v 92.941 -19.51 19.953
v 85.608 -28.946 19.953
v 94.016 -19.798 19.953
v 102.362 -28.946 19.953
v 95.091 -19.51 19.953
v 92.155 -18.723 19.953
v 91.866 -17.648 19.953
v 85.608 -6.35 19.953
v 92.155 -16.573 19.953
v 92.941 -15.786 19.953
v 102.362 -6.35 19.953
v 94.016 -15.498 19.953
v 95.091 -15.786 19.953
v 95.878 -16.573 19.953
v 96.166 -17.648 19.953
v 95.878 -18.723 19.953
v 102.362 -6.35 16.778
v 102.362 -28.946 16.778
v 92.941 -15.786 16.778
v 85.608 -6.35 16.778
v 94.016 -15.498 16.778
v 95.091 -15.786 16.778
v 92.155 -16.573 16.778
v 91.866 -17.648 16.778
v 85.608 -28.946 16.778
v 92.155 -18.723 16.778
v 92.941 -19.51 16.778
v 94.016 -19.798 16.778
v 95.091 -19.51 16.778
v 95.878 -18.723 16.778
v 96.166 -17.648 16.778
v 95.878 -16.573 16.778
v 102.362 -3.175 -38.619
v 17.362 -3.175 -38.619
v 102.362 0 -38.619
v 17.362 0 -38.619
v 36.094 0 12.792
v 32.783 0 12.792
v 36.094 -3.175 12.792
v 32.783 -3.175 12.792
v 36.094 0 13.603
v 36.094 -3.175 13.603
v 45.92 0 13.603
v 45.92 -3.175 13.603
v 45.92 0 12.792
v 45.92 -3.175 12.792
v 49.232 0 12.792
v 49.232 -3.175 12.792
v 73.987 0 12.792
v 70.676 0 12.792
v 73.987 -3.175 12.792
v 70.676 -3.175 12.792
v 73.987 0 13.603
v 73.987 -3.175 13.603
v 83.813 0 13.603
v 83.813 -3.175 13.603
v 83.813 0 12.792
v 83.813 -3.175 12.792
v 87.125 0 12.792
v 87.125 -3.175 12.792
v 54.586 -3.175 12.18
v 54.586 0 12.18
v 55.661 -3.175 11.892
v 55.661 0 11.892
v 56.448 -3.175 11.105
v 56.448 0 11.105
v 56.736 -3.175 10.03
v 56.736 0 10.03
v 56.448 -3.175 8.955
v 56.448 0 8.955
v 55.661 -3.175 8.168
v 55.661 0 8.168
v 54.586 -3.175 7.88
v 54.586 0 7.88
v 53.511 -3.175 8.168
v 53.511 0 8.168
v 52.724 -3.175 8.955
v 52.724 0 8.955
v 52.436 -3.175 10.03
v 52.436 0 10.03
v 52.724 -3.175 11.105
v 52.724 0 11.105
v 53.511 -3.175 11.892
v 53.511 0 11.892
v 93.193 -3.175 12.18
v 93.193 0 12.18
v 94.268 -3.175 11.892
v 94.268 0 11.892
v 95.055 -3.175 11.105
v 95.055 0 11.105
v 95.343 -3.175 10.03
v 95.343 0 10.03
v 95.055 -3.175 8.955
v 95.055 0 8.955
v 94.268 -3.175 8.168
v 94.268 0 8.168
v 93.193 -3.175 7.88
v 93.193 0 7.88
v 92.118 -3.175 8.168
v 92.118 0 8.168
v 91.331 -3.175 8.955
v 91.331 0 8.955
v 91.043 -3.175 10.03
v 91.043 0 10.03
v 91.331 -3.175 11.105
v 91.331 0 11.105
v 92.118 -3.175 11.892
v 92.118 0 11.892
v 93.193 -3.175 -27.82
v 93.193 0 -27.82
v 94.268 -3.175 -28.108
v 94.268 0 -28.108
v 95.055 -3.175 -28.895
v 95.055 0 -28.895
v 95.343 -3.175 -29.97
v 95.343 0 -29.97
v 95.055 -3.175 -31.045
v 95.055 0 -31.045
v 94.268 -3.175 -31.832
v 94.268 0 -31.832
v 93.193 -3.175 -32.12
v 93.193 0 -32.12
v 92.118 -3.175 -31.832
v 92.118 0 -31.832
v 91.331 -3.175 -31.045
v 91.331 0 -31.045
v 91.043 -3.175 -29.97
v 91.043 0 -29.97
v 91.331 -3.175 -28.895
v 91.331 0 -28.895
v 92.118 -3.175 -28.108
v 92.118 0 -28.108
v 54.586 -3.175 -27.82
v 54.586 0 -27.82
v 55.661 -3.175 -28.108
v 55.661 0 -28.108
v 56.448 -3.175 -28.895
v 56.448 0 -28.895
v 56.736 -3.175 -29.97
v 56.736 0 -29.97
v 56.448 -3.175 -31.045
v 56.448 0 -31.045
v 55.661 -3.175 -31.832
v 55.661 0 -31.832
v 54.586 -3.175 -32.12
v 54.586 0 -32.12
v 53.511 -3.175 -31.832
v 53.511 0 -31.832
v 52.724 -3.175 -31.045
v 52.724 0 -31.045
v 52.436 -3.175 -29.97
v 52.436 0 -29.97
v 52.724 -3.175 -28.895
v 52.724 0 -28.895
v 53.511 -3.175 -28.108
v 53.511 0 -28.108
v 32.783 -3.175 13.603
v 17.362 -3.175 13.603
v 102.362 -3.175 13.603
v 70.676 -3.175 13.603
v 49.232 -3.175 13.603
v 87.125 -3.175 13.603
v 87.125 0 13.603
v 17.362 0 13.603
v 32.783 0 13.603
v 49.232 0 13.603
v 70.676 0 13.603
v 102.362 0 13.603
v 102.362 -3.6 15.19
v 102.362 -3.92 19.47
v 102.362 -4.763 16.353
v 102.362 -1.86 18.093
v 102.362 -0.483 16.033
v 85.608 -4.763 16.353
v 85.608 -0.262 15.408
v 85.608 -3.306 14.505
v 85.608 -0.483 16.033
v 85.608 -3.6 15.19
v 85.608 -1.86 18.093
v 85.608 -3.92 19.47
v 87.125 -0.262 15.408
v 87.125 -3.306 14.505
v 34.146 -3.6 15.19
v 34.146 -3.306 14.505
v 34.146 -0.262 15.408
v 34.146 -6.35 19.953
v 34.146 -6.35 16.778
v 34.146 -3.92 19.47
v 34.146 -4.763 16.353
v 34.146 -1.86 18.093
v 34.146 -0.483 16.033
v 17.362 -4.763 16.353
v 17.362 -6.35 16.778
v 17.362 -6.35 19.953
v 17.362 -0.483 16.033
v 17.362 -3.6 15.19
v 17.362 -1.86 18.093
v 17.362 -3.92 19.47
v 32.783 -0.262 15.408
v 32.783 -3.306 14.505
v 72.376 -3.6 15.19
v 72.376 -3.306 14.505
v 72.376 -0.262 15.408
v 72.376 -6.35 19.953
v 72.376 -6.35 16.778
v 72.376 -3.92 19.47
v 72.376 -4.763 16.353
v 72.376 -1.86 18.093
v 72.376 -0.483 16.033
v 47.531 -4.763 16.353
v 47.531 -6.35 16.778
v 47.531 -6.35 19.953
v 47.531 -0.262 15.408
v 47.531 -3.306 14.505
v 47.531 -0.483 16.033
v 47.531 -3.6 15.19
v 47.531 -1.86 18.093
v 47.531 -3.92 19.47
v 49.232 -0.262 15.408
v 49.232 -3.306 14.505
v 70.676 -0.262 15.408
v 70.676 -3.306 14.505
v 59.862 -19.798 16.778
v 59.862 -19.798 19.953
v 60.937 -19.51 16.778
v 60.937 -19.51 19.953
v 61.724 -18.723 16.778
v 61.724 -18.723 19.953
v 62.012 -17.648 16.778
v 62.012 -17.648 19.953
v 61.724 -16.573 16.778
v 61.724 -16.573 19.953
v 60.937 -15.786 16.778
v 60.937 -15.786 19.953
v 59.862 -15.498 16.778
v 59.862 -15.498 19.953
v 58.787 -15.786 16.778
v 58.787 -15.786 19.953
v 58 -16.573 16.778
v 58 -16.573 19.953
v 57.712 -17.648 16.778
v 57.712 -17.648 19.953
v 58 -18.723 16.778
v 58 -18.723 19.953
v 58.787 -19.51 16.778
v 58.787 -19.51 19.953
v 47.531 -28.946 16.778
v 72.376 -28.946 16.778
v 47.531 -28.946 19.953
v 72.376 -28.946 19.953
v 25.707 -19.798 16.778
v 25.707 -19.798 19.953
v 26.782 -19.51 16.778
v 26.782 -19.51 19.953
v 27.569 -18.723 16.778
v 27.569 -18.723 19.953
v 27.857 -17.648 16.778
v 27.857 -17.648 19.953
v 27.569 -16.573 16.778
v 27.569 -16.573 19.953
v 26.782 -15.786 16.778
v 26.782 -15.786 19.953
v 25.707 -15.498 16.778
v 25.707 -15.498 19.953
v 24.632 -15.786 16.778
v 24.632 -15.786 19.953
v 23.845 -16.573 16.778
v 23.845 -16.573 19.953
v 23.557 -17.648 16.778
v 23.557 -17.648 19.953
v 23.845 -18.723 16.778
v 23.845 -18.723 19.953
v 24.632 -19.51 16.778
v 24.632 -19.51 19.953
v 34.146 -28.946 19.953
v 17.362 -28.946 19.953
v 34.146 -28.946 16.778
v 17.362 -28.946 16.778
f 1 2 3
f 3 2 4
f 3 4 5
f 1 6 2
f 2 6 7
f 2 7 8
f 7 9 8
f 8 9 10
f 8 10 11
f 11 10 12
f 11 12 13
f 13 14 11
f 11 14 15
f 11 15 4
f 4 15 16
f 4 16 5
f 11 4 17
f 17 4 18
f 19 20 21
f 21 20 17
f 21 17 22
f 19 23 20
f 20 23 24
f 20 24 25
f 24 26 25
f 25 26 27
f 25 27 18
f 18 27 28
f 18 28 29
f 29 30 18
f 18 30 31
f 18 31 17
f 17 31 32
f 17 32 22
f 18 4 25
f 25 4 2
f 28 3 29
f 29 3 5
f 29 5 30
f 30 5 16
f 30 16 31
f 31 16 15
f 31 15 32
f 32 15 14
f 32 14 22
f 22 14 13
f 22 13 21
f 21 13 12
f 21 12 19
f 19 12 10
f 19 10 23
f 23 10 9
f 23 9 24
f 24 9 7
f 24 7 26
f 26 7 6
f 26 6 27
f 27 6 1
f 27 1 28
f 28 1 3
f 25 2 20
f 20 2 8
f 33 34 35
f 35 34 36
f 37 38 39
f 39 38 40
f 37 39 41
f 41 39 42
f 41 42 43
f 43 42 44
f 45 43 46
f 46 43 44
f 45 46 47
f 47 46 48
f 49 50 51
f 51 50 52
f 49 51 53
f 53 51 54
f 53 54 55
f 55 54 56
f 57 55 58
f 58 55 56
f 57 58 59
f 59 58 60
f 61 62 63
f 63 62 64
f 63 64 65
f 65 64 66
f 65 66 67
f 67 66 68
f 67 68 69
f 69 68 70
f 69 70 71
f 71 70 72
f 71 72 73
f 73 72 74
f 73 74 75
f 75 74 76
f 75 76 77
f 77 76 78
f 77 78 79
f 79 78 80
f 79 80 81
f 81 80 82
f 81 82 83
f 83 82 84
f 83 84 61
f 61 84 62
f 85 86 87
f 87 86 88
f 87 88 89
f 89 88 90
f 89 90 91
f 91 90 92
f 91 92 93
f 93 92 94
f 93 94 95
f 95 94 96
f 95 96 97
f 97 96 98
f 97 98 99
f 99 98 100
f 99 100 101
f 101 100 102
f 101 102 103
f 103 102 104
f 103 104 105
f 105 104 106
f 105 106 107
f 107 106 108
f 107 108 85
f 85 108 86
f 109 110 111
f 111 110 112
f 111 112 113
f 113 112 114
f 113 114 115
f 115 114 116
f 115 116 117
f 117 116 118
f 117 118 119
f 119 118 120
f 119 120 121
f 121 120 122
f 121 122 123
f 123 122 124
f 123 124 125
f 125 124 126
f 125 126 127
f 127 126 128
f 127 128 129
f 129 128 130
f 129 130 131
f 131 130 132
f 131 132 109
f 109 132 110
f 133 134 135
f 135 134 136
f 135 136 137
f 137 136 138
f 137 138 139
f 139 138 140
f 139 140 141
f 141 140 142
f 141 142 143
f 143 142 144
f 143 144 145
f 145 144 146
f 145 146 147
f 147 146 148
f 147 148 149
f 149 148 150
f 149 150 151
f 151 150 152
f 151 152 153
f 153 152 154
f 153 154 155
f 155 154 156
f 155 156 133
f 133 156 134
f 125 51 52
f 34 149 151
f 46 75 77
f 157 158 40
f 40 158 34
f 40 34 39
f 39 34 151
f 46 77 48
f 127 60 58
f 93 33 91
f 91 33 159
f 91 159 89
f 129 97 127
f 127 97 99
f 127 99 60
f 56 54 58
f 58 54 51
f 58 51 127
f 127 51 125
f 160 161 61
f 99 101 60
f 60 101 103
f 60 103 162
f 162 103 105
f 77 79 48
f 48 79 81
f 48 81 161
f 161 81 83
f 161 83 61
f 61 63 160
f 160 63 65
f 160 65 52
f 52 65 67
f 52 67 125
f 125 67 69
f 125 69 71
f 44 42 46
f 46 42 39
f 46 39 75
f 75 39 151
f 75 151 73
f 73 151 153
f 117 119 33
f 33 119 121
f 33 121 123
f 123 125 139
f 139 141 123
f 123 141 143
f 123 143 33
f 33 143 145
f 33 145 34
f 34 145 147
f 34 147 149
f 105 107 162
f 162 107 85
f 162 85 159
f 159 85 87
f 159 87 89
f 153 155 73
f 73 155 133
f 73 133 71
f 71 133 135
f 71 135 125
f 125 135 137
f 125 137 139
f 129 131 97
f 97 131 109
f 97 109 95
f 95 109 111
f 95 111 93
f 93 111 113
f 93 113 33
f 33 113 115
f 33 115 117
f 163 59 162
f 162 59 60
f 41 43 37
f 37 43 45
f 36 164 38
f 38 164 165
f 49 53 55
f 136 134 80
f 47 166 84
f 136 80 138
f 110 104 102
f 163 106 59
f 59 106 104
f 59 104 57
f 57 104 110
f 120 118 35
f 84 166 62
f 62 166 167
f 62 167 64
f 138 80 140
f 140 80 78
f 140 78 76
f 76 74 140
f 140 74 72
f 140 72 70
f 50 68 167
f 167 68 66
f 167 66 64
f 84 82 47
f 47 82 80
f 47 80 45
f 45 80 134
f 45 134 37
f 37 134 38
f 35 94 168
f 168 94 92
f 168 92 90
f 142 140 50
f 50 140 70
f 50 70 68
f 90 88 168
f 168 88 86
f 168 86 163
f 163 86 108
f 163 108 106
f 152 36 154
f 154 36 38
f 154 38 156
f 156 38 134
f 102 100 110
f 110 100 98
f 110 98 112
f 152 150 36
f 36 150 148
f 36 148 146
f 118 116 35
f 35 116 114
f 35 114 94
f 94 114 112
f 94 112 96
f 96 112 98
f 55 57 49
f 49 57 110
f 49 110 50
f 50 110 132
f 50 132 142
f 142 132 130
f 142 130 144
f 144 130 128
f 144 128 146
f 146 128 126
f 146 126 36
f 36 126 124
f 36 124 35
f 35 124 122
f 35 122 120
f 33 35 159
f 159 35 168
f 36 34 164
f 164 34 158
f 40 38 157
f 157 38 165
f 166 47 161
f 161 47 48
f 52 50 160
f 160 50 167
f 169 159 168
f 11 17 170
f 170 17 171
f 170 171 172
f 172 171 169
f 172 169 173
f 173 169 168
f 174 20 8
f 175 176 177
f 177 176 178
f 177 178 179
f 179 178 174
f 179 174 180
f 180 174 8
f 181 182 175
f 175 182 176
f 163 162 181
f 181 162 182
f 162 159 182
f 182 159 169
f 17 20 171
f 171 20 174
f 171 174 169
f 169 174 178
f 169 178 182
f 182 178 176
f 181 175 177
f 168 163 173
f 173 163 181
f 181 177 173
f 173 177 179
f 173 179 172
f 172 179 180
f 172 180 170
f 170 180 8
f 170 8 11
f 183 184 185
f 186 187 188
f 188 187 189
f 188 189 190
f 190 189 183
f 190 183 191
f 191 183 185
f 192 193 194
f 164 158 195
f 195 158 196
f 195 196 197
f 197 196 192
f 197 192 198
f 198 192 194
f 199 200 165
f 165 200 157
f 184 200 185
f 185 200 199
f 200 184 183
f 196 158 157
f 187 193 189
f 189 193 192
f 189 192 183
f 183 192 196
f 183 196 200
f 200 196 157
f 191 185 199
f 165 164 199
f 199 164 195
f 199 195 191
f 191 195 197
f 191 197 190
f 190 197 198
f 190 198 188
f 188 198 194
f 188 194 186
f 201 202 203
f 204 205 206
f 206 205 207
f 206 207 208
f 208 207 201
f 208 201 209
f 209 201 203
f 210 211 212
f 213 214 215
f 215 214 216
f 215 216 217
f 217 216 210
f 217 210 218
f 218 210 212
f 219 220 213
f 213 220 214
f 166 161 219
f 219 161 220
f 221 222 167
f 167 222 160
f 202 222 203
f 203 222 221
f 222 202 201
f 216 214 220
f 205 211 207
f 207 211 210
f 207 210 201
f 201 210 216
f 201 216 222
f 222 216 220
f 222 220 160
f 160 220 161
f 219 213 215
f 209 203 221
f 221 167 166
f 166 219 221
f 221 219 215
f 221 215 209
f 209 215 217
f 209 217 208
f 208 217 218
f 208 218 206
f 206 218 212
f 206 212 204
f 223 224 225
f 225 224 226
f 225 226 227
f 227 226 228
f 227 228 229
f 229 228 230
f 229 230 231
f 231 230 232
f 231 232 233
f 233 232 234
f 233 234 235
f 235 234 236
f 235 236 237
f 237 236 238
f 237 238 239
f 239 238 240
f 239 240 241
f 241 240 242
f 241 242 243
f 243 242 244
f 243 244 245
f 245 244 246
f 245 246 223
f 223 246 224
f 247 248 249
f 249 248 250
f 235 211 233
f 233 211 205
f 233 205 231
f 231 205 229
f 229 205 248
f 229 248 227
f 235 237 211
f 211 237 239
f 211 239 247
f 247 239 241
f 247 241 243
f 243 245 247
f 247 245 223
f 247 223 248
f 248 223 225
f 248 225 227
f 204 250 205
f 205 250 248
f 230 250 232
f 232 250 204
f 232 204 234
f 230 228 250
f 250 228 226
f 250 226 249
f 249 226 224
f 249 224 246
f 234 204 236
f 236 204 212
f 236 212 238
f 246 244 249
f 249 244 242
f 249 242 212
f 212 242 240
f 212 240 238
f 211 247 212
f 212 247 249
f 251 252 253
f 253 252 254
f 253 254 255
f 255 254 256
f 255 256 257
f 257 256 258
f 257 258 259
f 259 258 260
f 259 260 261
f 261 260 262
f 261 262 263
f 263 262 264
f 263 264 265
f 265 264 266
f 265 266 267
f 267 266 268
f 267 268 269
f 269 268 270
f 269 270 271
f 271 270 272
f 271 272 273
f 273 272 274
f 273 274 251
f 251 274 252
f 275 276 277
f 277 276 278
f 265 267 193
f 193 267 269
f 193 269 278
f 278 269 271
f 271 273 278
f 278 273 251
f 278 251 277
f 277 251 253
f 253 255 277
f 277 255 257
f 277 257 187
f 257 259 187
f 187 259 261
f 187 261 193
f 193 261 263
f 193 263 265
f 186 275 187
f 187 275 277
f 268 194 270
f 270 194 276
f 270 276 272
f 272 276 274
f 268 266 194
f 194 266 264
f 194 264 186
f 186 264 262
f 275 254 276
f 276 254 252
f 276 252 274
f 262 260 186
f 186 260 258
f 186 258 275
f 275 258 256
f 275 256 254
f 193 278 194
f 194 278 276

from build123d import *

# Parameters (mm, degrees)
BASE_FLANGE1_DEPTH           = 3.175
SKETCH7_R                    = 2.15
CUT_EXTRUDE1_DEPTH           = 10
CUT_EXTRUDE2_DEPTH           = 10
SKETCHED_START               = 19.282254495
SKETCHED_BEND9_OUTLINE_W     = 16.753945323
SKETCHED_BEND9_OUTLINE_H     = 3.175
SKETCHED_BEND9_OUTLINE_W_2   = 24.844698194
SKETCHED_BEND9_OUTLINE_W_3   = 16.78397474
SKETCHED_BEND9_DEPTH         = 24.098637012
SKETCHED_START_2             = 19.005571507
SKETCHED_BEND9_2_OUTLINE_W   = 21.444377118
SKETCHED_BEND9_2_OUTLINE_H   = 3.175
SKETCHED_BEND9_2_DEPTH       = 0.294970988
SKETCHED_START_3             = 13.602941495
SKETCHED_BEND9_3_OUTLINE_R   = 2.15
SKETCHED_BEND9_3_DEPTH       = 6.35
SKETCHED_START_4             = 14.505297696
SKETCHED_BEND9_4_OUTLINE_W   = 1.51683744
SKETCHED_BEND9_4_OUTLINE_H   = 3.175
SKETCHED_BEND9_4_OUTLINE_W_2 = 1.700160538
SKETCHED_BEND9_4_OUTLINE_W_3 = 1.362827281
SKETCHED_BEND9_4_DEPTH       = 0.415197651
SKETCHED_START_5             = 17.361749674
SKETCHED_BEND9_5_DEPTH       = 85
SKETCHED_START_6             = 70.675958021
SKETCHED_BEND9_6_DEPTH       = 16.44868377
SKETCHED_START_7             = 32.782897133
SKETCHED_BEND9_7_DEPTH       = 16.44868377
SKETCHED_START_8             = 49.231580903
SKETCHED_BEND9_8_DEPTH       = 21.444377118


with BuildPart() as part:
    # Base-Flange1: sheet metal written as solids
    # Sketch2 → Base-Flange1 (new body)
    with BuildSketch(Plane(origin=(0, 0, 0), x_dir=(1, 0, 0), z_dir=(0, 1, 0))):
        Polygon((17.361749674, -43.380891507), (102.361749674, -43.380891507), (102.361749674, -20.784622302), (102.361749674, -13.602941495), (102.361749674, 38.619108493), (17.361749674, 38.619108493), align=None)
    extrude(amount=-BASE_FLANGE1_DEPTH)

    # Sketch7 → Cut-Extrude1 (cut)
    with BuildSketch(Plane(origin=(0, 0, 0), x_dir=(1, 0, 0), z_dir=(0, 1, 0))):
        with Locations(Location((54.586454374, -10.030408526, 0), (0, 0, 270))):
            Circle(SKETCH7_R)
        with Locations(Location((93.192772434, -10.030408526, 0), (0, 0, 270))):
            Circle(SKETCH7_R)
        with Locations(Location((93.192772434, 29.969592019, 0), (0, 0, 270))):
            Circle(SKETCH7_R)
        with Locations(Location((54.586454374, 29.969592019, 0), (0, 0, 270))):
            Circle(SKETCH7_R)
        with Locations(Location((94.016482215, -32.082756904, 0), (0, 0, 270))):
            Circle(SKETCH7_R)
        with Locations(Location((59.861749674, -32.082756904, 0), (0, 0, 270))):
            Circle(SKETCH7_R)
        with Locations(Location((25.707017133, -32.082756904, 0), (0, 0, 270))):
            Circle(SKETCH7_R)
    extrude(amount=-CUT_EXTRUDE1_DEPTH, mode=Mode.SUBTRACT)

    # Sketch8 → Cut-Extrude2 (cut)
    with BuildSketch(Plane(origin=(0, 0, 0), x_dir=(1, 0, 0), z_dir=(0, 1, 0))):
        Polygon((85.607804351, -43.380891507), (72.376118559, -43.380891507), (72.376118559, -14.920495347), (70.675958021, -14.920495347), (70.675958021, -12.791720969), (73.98738483, -12.791720969), (73.98738483, -13.602941495), (83.813214982, -13.602941495), (83.813214982, -12.791720969), (87.124641791, -12.791720969), (87.124641791, -14.920495347), (85.607804351, -14.920495347), align=None)
        Polygon((47.531420365, -43.380891507), (34.145724414, -43.380891507), (34.145724414, -14.920495347), (32.782897133, -14.920495347), (32.782897133, -12.791720969), (36.094323942, -12.791720969), (36.094323942, -13.602941495), (45.920154094, -13.602941495), (45.920154094, -12.791720969), (49.231580903, -12.791720969), (49.231580903, -14.920495347), (47.531420365, -14.920495347), align=None)
    extrude(amount=-CUT_EXTRUDE2_DEPTH, mode=Mode.SUBTRACT)

    # Sketched Bend9: read off the stored shape, not the designer's step
    # Sketched Bend9 outline → Sketched Bend9 (cut)
    with BuildSketch(Plane.XY.offset(SKETCHED_START)):
        with Locations((93.984777013, -1.5875)):
            Rectangle(SKETCHED_BEND9_OUTLINE_W, SKETCHED_BEND9_OUTLINE_H)
        with Locations((59.953769462, -1.5875)):
            Rectangle(SKETCHED_BEND9_OUTLINE_W_2, SKETCHED_BEND9_OUTLINE_H)
        with Locations((25.753737044, -1.5875)):
            Rectangle(SKETCHED_BEND9_OUTLINE_W_3, SKETCHED_BEND9_OUTLINE_H)
    extrude(amount=SKETCHED_BEND9_DEPTH, mode=Mode.SUBTRACT)

    # Sketched Bend9 2 outline → Sketched Bend9 2 (cut)
    with BuildSketch(Plane.XY.offset(SKETCHED_START_2)):
        with Locations((59.953769462, -1.5875)):
            Rectangle(SKETCHED_BEND9_2_OUTLINE_W, SKETCHED_BEND9_2_OUTLINE_H)
    extrude(amount=SKETCHED_BEND9_2_DEPTH, mode=Mode.SUBTRACT)

    # Sketched Bend9 3 outline → Sketched Bend9 3 (add)
    # profile 1 of 3: a face of its own
    with BuildSketch(Plane.XY.offset(SKETCHED_START_3)):
        Polygon((85.607804351, -28.946269205), (102.361749674, -28.946269205), (102.361749674, -3.175), (87.124641791, -3.175), (85.607804351, -3.175), align=None)
        with Locations((94.016482215, -17.648134603)):
            Circle(SKETCHED_BEND9_3_OUTLINE_R, mode=Mode.SUBTRACT)
    # profile 2 of 3: a face of its own
    with BuildSketch(Plane.XY.offset(SKETCHED_START_3)):
        Polygon((72.376118559, -28.946269205), (72.376118559, -3.175), (70.675958021, -3.175), (49.231580903, -3.175), (47.531420365, -3.175), (47.531420365, -28.946269205), align=None)
        with Locations((59.861749674, -17.648134603)):
            Circle(SKETCHED_BEND9_3_OUTLINE_R, mode=Mode.SUBTRACT)
    # profile 3 of 3: a face of its own
    with BuildSketch(Plane.XY.offset(SKETCHED_START_3)):
        Polygon((34.145724414, -28.946269205), (34.145724414, -3.175), (32.782897133, -3.175), (17.361749674, -3.175), (17.361749674, -28.946269205), align=None)
        with Locations((25.707017133, -17.648134603)):
            Circle(SKETCHED_BEND9_3_OUTLINE_R, mode=Mode.SUBTRACT)
    extrude(amount=SKETCHED_BEND9_3_DEPTH)

    # Sketched Bend9 4 outline → Sketched Bend9 4 (add)
    with BuildSketch(Plane.XY.offset(SKETCHED_START_4)):
        with Locations((86.366223071, -1.5875)):
            Rectangle(SKETCHED_BEND9_4_OUTLINE_W, SKETCHED_BEND9_4_OUTLINE_H)
        with Locations((71.52603829, -1.5875)):
            Rectangle(SKETCHED_BEND9_4_OUTLINE_W_2, SKETCHED_BEND9_4_OUTLINE_H)
        with Locations((48.381500634, -1.5875)):
            Rectangle(SKETCHED_BEND9_4_OUTLINE_W_2, SKETCHED_BEND9_4_OUTLINE_H)
        with Locations((33.464310774, -1.5875)):
            Rectangle(SKETCHED_BEND9_4_OUTLINE_W_3, SKETCHED_BEND9_4_OUTLINE_H)
    extrude(amount=SKETCHED_BEND9_4_DEPTH)

    # Sketched Bend9 5 outline → Sketched Bend9 5 (cut)
    with BuildSketch(Plane.YZ.offset(SKETCHED_START_5)):
        with BuildLine():
            ThreePointArc((-3.175, 13.602941495), (-4.10493597, 15.848005525), (-6.35, 16.777941495))
            Line((-6.35, 16.777941495), (-28.946269205, 16.777941495))
            Line((-28.946269205, 16.777941495), (-28.946269205, 13.602941495))
            Line((-28.946269205, 13.602941495), (-3.175, 13.602941495))
        make_face()
        with BuildLine():
            Line((0, 13.602941495), (0, 19.282254495))
            Line((0, 19.282254495), (-3.175, 19.282254495))
            Line((-3.175, 19.282254495), (-3.175, 19.952941495))
            Line((-3.175, 19.952941495), (-6.35, 19.952941495))
            ThreePointArc((-6.35, 19.952941495), (-1.859871939, 18.093069556), (0, 13.602941495))
        make_face()
    extrude(amount=SKETCHED_BEND9_5_DEPTH, mode=Mode.SUBTRACT)

    # Sketched Bend9 6 outline → Sketched Bend9 6 (cut)
    with BuildSketch(Plane.YZ.offset(SKETCHED_START_6)):
        with BuildLine():
            Line((-0.261854704, 15.407653897), (-3.305927352, 14.505297696))
            ThreePointArc((-3.305927352, 14.505297696), (-3.20790232, 14.058844085), (-3.175, 13.602941495))
            Line((-3.175, 13.602941495), (-3.175, 14.505297696))
            Line((-3.175, 14.505297696), (-0.064440893, 14.505297696))
            ThreePointArc((-0.064440893, 14.505297696), (-0.146718462, 14.96007014), (-0.261854704, 15.407653897))
        make_face()
    extrude(amount=SKETCHED_BEND9_6_DEPTH, mode=Mode.SUBTRACT)

    # Sketched Bend9 7 outline → Sketched Bend9 7 (cut)
    with BuildSketch(Plane.YZ.offset(SKETCHED_START_7)):
        with BuildLine():
            Line((-0.261854704, 15.407653897), (-3.305927352, 14.505297696))
            ThreePointArc((-3.305927352, 14.505297696), (-3.20790232, 14.058844085), (-3.175, 13.602941495))
            Line((-3.175, 13.602941495), (-3.175, 14.505297696))
            Line((-3.175, 14.505297696), (-0.064440893, 14.505297696))
            ThreePointArc((-0.064440893, 14.505297696), (-0.146718462, 14.96007014), (-0.261854704, 15.407653897))
        make_face()
    extrude(amount=SKETCHED_BEND9_7_DEPTH, mode=Mode.SUBTRACT)

    # Sketched Bend9 8 outline → Sketched Bend9 8 (add)
    with BuildSketch(Plane.YZ.offset(SKETCHED_START_8)):
        with BuildLine():
            Line((-3.175, 19.005571507), (-3.013221769, 19.005571507))
            ThreePointArc((-3.013221769, 19.005571507), (-3.093752415, 19.054487301), (-3.175, 19.10220281))
            Line((-3.175, 19.10220281), (-3.175, 19.005571507))
        make_face()
    extrude(amount=SKETCHED_BEND9_8_DEPTH)


solid = part.part
